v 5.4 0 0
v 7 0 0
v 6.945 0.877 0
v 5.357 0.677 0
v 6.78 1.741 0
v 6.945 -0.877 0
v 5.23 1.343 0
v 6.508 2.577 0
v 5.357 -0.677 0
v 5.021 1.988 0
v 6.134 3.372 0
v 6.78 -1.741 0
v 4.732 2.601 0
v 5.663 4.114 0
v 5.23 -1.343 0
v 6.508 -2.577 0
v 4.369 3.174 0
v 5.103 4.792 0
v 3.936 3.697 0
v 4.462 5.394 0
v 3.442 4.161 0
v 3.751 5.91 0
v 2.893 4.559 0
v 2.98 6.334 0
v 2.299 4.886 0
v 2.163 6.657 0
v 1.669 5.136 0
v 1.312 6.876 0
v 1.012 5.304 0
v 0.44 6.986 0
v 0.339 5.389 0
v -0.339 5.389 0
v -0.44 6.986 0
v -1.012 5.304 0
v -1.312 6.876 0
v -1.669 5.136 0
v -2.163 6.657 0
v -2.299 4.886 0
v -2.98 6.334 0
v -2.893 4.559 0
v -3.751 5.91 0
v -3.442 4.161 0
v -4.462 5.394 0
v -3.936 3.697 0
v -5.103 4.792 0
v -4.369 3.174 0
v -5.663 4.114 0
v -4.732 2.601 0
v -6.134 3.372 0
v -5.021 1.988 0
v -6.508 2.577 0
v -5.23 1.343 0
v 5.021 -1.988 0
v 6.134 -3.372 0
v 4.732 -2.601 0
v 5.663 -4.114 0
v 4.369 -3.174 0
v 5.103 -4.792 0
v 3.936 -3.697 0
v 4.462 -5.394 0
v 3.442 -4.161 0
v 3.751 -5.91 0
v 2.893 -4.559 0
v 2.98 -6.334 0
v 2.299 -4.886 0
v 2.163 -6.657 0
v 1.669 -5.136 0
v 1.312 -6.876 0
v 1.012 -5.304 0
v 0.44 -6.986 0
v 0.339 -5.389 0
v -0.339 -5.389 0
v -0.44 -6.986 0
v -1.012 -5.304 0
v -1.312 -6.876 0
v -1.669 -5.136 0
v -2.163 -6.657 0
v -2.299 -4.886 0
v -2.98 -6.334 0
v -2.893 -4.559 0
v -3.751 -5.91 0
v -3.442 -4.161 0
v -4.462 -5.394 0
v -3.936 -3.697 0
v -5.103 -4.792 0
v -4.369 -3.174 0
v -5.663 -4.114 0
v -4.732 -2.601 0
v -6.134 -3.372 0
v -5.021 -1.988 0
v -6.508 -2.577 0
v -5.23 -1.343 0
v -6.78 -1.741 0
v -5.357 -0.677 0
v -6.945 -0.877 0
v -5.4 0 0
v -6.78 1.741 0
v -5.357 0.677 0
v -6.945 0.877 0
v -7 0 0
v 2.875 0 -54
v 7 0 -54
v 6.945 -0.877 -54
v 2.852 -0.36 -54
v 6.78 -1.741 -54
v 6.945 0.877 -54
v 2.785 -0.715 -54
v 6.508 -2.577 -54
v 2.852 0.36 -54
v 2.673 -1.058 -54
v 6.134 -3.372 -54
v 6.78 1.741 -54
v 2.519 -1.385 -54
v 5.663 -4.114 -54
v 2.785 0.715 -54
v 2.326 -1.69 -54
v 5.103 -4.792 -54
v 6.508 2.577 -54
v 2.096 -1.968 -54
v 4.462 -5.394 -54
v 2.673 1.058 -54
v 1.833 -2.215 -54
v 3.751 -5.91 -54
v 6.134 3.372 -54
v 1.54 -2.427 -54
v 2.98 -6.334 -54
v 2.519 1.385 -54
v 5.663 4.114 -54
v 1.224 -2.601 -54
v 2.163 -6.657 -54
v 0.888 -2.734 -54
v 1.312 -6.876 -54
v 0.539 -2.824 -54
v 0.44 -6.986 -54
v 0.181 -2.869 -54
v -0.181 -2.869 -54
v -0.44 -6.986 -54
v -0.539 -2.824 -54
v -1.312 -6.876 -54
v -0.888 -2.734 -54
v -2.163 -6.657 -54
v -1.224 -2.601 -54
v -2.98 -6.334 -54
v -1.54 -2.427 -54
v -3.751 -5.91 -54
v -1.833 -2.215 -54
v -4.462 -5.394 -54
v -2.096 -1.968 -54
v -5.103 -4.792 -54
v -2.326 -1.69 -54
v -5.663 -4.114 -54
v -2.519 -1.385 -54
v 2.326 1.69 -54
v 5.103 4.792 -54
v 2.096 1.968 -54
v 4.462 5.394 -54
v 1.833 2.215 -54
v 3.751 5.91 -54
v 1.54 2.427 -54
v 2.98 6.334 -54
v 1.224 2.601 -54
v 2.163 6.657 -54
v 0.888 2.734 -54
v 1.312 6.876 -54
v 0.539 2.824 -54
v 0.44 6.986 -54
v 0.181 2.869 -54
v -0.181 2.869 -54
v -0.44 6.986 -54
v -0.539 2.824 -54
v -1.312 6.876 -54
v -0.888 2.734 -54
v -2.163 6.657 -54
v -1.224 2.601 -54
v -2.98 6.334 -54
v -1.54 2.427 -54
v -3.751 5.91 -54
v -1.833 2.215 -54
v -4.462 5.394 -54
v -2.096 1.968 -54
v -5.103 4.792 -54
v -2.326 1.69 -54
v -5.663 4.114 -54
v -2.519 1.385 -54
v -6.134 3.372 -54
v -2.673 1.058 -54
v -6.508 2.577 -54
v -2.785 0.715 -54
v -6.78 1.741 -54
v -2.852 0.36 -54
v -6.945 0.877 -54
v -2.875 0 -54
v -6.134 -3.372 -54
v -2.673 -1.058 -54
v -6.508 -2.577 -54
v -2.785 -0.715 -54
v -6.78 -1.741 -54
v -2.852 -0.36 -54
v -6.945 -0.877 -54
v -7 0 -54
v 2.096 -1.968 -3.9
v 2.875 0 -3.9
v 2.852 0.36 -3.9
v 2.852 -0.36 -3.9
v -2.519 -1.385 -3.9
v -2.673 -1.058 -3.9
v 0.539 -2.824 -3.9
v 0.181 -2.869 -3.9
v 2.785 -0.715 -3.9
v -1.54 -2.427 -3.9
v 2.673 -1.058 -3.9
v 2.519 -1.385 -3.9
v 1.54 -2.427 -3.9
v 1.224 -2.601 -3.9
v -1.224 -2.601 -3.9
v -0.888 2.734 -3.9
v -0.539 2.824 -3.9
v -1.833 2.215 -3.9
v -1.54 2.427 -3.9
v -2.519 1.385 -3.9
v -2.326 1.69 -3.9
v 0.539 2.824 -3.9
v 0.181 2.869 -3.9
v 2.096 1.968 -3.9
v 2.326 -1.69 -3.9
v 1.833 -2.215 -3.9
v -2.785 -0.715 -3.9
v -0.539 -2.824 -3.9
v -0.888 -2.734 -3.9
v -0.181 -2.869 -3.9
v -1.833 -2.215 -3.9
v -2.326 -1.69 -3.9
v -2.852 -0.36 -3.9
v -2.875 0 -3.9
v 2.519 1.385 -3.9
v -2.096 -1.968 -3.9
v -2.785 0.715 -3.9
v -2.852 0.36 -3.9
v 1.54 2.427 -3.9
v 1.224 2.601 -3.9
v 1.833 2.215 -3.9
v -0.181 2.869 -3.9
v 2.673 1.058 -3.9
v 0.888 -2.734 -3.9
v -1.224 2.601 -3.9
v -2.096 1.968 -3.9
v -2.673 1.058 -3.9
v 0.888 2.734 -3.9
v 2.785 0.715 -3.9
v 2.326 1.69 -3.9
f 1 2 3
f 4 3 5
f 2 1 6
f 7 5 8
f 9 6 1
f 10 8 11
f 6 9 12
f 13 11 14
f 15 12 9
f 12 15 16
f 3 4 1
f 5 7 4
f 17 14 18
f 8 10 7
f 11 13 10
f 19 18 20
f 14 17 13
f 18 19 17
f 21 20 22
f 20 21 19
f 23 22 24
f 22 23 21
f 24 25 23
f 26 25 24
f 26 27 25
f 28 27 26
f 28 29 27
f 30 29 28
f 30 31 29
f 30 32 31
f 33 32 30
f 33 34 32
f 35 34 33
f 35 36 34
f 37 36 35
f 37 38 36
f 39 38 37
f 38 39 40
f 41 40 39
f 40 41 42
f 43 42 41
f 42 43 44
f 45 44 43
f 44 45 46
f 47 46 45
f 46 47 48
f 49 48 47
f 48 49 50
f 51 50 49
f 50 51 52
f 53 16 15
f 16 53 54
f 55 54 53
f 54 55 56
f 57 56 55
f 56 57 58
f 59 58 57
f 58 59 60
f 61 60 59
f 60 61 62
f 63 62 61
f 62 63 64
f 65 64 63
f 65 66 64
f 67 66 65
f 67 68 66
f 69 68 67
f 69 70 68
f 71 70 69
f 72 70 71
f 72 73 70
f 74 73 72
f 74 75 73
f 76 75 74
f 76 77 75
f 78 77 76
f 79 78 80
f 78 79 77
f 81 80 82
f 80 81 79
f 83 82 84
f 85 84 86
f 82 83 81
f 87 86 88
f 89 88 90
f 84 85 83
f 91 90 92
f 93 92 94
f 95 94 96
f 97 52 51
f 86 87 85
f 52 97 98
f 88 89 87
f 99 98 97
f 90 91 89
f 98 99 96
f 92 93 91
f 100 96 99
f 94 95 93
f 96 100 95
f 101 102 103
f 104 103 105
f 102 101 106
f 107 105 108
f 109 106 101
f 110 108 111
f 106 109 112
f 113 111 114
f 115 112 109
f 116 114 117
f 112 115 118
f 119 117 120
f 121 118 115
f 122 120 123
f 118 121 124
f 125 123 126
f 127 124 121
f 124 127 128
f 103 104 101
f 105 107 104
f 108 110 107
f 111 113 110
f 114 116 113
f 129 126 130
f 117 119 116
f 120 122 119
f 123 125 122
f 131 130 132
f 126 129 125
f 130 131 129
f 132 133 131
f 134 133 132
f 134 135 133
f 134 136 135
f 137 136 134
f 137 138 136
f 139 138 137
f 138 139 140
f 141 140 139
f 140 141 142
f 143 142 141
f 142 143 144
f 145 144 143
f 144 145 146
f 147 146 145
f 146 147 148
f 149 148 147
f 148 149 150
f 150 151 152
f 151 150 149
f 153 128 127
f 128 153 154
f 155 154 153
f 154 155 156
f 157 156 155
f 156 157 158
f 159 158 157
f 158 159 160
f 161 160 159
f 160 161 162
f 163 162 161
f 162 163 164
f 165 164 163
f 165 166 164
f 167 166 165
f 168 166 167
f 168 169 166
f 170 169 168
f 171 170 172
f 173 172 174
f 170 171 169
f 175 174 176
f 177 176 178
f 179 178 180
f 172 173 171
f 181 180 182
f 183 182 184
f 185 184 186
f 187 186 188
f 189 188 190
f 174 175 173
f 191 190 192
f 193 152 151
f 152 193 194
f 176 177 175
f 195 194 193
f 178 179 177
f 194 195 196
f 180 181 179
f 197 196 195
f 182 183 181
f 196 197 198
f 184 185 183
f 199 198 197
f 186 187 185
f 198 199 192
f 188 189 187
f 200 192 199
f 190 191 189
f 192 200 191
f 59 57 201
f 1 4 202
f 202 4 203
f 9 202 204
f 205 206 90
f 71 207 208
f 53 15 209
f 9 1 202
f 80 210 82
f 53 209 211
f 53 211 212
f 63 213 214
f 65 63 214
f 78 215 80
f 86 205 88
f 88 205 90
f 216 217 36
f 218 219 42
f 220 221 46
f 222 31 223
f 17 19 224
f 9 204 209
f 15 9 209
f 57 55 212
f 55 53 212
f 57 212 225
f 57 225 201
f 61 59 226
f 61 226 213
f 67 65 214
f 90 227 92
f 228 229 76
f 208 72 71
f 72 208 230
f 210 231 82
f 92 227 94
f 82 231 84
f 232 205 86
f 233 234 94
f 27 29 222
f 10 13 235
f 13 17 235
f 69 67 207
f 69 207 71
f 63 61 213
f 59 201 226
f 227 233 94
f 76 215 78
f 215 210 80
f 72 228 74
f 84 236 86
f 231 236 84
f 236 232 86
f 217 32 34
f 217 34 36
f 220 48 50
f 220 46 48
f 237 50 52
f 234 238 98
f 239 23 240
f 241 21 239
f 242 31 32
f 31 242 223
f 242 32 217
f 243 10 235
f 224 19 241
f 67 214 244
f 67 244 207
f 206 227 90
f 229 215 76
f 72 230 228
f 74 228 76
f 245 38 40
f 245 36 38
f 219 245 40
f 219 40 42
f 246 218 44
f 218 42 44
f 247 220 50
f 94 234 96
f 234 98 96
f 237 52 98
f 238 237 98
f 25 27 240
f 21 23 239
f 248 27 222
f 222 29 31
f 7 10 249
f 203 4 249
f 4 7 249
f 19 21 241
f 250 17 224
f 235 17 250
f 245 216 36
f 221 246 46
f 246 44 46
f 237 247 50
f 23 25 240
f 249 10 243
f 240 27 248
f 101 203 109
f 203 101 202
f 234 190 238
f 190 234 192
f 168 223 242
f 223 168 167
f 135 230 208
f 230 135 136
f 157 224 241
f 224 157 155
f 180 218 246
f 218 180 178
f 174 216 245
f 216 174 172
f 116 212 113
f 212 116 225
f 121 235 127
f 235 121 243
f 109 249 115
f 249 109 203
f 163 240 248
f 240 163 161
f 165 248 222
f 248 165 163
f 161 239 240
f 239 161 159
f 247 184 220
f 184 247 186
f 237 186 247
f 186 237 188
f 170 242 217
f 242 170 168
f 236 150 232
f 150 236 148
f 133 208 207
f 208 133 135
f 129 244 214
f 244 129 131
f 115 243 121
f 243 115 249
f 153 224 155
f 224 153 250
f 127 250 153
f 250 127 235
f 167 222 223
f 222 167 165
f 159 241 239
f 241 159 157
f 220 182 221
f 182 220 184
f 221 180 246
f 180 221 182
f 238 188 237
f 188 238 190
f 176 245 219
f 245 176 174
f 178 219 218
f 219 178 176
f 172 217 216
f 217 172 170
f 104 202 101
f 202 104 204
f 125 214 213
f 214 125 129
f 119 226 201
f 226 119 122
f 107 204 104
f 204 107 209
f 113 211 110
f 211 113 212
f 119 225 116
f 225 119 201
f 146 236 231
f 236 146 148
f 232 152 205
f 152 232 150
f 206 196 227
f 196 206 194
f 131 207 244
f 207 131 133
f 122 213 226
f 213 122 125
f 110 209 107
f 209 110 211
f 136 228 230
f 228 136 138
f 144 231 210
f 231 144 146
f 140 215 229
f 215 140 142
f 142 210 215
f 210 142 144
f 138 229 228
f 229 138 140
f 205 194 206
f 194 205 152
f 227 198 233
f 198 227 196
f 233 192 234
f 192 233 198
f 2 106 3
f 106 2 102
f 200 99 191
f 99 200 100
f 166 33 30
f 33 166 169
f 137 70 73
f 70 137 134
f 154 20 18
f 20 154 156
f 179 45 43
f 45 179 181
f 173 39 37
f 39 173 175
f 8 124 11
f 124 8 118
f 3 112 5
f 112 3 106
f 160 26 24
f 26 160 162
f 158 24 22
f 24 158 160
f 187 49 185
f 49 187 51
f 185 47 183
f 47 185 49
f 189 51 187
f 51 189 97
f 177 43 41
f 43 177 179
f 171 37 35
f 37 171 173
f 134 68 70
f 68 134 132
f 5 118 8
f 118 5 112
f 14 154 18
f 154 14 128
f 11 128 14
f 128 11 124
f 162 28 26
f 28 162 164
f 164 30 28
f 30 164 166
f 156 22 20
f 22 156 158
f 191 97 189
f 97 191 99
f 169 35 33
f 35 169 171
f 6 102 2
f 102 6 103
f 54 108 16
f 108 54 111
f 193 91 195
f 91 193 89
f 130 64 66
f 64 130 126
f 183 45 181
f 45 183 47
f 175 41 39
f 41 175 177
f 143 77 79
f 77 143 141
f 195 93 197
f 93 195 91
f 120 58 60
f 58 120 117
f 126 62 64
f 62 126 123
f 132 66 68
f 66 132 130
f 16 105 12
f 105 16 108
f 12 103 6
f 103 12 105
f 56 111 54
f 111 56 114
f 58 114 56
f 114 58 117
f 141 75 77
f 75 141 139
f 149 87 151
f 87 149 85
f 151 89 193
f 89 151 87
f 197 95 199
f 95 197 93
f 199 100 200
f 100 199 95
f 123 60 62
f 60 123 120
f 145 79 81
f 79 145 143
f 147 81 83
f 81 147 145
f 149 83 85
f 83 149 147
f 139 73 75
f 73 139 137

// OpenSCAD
$fn = 50;


difference() {
	union() {
		translate(v = [0, 0, -54.0000000000]) {
			cylinder(h = 54, r = 7.0000000000);
		}
		cylinder(h = 0, r = 17.0000000000);
	}
	union() {
		translate(v = [0, 0, 0]) {
			rotate(a = [0, 0, 0]) {
				difference() {
					union() {
						#translate(v = [0, 0, -54.0000000000]) {
							cylinder(h = 54, r = 2.6000000000);
						}
						#translate(v = [0, 0, -3.9000000000]) {
							cylinder(h = 3.9000000000, r1 = 2.8750000000, r2 = 5.4000000000);
						}
						#translate(v = [0, 0, -54.0000000000]) {
							cylinder(h = 54, r = 2.8750000000);
						}
						#translate(v = [0, 0, -54.0000000000]) {
							cylinder(h = 54, r = 2.6000000000);
						}
					}
					union();
				}
			}
		}
	}
}
